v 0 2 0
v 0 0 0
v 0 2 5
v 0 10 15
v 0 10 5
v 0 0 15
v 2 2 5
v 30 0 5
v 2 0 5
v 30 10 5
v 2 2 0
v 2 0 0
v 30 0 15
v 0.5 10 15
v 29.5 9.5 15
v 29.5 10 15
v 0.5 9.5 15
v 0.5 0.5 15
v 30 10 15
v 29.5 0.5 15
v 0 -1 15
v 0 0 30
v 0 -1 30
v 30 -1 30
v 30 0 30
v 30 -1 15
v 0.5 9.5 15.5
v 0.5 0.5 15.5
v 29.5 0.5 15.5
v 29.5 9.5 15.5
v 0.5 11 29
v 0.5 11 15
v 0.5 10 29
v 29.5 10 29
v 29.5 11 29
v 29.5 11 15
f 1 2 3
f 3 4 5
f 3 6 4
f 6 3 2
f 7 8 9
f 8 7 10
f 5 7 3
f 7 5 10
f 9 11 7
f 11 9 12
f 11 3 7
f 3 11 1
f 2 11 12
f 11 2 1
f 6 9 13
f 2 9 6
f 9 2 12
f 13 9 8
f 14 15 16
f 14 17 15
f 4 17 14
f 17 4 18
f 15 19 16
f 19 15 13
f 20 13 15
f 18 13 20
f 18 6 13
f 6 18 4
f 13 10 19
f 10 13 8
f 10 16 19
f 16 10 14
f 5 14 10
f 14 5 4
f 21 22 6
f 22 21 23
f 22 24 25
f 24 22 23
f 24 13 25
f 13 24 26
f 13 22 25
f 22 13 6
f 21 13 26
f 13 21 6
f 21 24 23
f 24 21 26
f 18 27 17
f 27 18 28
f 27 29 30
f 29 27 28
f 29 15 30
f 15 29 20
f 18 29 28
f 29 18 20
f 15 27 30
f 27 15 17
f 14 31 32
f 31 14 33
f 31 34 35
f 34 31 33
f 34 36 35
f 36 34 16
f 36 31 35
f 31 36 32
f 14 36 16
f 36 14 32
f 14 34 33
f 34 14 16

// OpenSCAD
// Define the overall size parameters
couch_length = 30;
couch_depth = 10;
couch_height = 10;
couch_back_height = 15;

// Define the leg dimensions
leg_width = 2;
leg_height = 5;

// Couch frame
translate([0, 0, leg_height])
    cube([couch_length, couch_depth, couch_height]);

// Couch back
translate([0, -1, leg_height + couch_height])
    cube([couch_length, 1, couch_back_height]);

// Legs
for (x = [0, couch_length - leg_width])
    for (y = [0, couch_depth - leg_width])
        cube([leg_width, leg_width, leg_height]);

// Couch seat cushion
translate([0.5, 0.5, leg_height + couch_height - 0.5])
    cube([couch_length - 1, couch_depth - 1, 1]);

// Couch back cushion
translate([0.5, couch_depth, leg_height + couch_height])
    cube([couch_length - 1, 1, couch_back_height - 1]);
